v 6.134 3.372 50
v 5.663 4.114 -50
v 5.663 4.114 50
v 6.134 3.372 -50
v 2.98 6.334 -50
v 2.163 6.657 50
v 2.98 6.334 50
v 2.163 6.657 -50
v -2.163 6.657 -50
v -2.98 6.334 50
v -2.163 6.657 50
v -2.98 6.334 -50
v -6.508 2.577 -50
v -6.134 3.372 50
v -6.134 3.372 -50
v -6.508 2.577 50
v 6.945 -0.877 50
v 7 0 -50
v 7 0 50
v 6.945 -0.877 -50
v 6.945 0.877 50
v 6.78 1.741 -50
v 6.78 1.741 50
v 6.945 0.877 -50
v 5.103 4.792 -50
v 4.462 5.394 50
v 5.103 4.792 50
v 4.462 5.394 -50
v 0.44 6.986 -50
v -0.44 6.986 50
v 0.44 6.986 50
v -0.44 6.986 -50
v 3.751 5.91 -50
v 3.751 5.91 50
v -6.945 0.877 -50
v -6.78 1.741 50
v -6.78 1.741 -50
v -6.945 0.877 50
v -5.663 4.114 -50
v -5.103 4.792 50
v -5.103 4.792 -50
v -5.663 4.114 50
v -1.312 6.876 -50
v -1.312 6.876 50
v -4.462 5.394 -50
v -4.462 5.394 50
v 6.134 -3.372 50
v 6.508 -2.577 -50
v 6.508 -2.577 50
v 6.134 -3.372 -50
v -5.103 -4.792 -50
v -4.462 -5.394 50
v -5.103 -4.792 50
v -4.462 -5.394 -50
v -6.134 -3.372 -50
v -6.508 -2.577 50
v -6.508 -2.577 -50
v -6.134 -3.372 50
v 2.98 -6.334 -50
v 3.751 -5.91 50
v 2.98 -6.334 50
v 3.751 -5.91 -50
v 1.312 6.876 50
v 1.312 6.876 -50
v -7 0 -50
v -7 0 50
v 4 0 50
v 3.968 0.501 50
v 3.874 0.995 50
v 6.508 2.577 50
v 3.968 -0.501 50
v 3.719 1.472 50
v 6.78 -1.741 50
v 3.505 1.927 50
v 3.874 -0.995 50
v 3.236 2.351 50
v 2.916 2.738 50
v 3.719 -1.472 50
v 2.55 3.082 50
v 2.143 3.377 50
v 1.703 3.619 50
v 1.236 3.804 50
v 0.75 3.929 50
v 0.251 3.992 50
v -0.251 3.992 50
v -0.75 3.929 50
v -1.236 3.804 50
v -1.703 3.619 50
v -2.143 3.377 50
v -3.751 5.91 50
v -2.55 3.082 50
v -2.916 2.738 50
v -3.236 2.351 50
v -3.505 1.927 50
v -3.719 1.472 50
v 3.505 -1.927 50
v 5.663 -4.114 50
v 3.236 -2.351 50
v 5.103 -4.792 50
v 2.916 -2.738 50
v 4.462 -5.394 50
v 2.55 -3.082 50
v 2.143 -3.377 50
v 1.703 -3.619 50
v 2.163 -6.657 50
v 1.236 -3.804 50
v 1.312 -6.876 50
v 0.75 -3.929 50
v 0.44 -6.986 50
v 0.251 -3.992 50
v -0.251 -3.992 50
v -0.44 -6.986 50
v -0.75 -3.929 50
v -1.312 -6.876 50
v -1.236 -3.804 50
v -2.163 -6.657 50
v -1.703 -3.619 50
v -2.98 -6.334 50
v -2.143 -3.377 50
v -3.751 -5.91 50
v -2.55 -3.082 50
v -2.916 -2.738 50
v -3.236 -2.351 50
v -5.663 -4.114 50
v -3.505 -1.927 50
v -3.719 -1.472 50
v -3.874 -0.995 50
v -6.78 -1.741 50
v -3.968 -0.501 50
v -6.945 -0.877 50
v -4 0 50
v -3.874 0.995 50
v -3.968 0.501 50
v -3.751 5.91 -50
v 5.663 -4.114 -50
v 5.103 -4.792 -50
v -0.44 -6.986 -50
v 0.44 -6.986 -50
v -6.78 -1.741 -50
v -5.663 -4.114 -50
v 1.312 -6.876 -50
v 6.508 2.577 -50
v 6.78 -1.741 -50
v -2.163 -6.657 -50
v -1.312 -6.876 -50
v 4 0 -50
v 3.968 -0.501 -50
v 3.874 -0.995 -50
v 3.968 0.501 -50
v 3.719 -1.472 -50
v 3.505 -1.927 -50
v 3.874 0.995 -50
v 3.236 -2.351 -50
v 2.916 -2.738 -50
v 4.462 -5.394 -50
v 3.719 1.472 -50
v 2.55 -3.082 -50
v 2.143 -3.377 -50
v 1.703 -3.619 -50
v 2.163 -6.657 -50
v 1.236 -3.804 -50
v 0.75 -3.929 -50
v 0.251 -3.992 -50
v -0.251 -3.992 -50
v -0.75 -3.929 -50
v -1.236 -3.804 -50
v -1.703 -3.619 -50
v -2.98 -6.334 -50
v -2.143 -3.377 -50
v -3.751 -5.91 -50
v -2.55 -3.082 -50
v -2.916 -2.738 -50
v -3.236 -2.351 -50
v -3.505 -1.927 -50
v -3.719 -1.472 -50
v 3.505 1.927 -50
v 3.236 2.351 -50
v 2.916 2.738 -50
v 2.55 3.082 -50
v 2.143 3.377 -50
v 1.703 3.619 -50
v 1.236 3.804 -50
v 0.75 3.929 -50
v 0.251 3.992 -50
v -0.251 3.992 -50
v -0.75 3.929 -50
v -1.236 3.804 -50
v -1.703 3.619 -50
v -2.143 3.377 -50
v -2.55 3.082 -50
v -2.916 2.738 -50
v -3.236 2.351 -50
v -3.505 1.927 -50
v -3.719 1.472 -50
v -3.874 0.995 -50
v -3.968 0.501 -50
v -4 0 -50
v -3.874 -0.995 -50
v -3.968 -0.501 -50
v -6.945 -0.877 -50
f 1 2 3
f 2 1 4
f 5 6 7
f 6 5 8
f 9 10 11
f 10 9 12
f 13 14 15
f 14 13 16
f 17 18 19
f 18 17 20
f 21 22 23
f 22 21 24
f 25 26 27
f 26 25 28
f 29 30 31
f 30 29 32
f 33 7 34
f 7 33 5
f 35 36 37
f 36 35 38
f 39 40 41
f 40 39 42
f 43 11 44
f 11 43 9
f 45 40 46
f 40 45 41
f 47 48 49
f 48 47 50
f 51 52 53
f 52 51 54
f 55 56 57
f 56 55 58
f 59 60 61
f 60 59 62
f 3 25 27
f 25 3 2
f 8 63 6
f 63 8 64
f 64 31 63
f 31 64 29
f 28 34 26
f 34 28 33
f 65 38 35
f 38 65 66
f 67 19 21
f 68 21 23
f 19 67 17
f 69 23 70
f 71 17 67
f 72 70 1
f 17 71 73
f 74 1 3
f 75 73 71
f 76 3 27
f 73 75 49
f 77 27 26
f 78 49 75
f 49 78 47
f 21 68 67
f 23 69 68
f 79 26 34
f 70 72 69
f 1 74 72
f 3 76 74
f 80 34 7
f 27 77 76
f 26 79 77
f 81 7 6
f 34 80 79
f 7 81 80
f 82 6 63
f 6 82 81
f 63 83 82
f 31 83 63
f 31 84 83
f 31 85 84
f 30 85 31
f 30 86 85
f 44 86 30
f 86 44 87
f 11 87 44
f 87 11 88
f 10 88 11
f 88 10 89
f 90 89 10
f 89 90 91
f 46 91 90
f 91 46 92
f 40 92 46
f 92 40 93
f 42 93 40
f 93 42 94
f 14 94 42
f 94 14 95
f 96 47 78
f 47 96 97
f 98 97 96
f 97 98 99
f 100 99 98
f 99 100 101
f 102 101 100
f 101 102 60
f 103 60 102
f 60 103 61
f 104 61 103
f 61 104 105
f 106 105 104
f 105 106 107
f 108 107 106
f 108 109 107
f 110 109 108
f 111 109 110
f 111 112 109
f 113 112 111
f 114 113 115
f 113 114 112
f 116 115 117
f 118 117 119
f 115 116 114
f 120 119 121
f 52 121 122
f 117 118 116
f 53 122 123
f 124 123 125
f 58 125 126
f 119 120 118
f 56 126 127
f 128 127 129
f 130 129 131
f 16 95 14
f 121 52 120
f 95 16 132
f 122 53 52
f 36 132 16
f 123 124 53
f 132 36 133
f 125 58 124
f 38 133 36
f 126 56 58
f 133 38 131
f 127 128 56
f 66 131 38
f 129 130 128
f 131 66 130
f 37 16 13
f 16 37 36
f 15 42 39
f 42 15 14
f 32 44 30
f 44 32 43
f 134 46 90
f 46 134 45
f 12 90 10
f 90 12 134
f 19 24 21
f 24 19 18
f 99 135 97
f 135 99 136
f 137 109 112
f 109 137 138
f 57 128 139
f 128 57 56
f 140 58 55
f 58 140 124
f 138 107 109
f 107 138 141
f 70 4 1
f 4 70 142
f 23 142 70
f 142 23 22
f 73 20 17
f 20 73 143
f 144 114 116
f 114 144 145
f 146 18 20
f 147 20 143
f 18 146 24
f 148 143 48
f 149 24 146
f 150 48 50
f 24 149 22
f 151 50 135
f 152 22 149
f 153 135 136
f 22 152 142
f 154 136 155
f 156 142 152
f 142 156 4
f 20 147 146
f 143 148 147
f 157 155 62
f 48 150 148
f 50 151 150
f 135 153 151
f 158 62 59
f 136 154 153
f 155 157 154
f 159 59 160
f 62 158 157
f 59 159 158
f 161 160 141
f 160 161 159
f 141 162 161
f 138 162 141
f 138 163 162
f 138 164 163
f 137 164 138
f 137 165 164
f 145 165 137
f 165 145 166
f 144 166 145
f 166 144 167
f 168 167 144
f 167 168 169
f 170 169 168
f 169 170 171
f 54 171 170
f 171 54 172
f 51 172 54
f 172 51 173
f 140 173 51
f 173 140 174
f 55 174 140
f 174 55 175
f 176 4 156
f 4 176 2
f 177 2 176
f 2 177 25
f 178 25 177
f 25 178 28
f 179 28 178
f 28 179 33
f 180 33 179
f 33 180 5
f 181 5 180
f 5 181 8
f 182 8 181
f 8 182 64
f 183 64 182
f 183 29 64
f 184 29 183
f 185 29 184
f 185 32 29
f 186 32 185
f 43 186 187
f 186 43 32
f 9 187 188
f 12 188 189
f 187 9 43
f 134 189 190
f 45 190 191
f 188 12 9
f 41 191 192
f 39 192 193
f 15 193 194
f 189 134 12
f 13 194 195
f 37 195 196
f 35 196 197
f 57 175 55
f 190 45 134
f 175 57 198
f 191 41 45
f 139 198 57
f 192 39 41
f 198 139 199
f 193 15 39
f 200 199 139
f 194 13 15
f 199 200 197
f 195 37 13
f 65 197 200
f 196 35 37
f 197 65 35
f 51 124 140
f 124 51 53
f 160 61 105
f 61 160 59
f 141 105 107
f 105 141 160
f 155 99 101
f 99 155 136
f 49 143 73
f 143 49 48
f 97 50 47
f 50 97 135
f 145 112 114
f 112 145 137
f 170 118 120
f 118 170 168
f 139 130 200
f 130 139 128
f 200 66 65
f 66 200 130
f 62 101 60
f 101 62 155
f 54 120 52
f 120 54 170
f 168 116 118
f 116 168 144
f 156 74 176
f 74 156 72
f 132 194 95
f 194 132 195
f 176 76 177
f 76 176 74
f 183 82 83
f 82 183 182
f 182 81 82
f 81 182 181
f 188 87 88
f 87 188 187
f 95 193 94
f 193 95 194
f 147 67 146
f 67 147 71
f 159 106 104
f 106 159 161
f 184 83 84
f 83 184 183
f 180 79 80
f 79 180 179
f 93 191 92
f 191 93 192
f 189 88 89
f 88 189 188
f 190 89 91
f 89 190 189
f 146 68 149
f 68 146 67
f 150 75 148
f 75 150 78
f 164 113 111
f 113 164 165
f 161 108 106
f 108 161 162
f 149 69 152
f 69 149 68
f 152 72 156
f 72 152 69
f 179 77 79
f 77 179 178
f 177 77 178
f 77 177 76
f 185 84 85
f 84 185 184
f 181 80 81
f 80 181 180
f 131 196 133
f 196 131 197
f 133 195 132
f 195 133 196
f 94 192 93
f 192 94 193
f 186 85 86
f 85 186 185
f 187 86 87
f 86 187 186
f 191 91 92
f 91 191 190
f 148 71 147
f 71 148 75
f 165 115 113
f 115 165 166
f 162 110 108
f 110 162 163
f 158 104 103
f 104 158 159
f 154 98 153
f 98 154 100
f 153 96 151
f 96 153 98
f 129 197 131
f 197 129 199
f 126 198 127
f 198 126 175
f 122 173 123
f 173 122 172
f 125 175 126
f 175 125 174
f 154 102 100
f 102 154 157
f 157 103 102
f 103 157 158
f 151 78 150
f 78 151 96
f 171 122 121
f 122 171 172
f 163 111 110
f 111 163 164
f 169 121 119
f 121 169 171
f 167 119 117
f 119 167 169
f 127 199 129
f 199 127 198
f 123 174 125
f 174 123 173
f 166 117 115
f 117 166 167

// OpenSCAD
$fn = 50;


difference() {
	union() {
		translate(v = [0, 0, -50.0000000000]) {
			cylinder(h = 100, r = 7.0000000000);
		}
	}
	union() {
		translate(v = [0, 0, -100.0000000000]) {
			cylinder(h = 200, r = 4);
		}
	}
}
